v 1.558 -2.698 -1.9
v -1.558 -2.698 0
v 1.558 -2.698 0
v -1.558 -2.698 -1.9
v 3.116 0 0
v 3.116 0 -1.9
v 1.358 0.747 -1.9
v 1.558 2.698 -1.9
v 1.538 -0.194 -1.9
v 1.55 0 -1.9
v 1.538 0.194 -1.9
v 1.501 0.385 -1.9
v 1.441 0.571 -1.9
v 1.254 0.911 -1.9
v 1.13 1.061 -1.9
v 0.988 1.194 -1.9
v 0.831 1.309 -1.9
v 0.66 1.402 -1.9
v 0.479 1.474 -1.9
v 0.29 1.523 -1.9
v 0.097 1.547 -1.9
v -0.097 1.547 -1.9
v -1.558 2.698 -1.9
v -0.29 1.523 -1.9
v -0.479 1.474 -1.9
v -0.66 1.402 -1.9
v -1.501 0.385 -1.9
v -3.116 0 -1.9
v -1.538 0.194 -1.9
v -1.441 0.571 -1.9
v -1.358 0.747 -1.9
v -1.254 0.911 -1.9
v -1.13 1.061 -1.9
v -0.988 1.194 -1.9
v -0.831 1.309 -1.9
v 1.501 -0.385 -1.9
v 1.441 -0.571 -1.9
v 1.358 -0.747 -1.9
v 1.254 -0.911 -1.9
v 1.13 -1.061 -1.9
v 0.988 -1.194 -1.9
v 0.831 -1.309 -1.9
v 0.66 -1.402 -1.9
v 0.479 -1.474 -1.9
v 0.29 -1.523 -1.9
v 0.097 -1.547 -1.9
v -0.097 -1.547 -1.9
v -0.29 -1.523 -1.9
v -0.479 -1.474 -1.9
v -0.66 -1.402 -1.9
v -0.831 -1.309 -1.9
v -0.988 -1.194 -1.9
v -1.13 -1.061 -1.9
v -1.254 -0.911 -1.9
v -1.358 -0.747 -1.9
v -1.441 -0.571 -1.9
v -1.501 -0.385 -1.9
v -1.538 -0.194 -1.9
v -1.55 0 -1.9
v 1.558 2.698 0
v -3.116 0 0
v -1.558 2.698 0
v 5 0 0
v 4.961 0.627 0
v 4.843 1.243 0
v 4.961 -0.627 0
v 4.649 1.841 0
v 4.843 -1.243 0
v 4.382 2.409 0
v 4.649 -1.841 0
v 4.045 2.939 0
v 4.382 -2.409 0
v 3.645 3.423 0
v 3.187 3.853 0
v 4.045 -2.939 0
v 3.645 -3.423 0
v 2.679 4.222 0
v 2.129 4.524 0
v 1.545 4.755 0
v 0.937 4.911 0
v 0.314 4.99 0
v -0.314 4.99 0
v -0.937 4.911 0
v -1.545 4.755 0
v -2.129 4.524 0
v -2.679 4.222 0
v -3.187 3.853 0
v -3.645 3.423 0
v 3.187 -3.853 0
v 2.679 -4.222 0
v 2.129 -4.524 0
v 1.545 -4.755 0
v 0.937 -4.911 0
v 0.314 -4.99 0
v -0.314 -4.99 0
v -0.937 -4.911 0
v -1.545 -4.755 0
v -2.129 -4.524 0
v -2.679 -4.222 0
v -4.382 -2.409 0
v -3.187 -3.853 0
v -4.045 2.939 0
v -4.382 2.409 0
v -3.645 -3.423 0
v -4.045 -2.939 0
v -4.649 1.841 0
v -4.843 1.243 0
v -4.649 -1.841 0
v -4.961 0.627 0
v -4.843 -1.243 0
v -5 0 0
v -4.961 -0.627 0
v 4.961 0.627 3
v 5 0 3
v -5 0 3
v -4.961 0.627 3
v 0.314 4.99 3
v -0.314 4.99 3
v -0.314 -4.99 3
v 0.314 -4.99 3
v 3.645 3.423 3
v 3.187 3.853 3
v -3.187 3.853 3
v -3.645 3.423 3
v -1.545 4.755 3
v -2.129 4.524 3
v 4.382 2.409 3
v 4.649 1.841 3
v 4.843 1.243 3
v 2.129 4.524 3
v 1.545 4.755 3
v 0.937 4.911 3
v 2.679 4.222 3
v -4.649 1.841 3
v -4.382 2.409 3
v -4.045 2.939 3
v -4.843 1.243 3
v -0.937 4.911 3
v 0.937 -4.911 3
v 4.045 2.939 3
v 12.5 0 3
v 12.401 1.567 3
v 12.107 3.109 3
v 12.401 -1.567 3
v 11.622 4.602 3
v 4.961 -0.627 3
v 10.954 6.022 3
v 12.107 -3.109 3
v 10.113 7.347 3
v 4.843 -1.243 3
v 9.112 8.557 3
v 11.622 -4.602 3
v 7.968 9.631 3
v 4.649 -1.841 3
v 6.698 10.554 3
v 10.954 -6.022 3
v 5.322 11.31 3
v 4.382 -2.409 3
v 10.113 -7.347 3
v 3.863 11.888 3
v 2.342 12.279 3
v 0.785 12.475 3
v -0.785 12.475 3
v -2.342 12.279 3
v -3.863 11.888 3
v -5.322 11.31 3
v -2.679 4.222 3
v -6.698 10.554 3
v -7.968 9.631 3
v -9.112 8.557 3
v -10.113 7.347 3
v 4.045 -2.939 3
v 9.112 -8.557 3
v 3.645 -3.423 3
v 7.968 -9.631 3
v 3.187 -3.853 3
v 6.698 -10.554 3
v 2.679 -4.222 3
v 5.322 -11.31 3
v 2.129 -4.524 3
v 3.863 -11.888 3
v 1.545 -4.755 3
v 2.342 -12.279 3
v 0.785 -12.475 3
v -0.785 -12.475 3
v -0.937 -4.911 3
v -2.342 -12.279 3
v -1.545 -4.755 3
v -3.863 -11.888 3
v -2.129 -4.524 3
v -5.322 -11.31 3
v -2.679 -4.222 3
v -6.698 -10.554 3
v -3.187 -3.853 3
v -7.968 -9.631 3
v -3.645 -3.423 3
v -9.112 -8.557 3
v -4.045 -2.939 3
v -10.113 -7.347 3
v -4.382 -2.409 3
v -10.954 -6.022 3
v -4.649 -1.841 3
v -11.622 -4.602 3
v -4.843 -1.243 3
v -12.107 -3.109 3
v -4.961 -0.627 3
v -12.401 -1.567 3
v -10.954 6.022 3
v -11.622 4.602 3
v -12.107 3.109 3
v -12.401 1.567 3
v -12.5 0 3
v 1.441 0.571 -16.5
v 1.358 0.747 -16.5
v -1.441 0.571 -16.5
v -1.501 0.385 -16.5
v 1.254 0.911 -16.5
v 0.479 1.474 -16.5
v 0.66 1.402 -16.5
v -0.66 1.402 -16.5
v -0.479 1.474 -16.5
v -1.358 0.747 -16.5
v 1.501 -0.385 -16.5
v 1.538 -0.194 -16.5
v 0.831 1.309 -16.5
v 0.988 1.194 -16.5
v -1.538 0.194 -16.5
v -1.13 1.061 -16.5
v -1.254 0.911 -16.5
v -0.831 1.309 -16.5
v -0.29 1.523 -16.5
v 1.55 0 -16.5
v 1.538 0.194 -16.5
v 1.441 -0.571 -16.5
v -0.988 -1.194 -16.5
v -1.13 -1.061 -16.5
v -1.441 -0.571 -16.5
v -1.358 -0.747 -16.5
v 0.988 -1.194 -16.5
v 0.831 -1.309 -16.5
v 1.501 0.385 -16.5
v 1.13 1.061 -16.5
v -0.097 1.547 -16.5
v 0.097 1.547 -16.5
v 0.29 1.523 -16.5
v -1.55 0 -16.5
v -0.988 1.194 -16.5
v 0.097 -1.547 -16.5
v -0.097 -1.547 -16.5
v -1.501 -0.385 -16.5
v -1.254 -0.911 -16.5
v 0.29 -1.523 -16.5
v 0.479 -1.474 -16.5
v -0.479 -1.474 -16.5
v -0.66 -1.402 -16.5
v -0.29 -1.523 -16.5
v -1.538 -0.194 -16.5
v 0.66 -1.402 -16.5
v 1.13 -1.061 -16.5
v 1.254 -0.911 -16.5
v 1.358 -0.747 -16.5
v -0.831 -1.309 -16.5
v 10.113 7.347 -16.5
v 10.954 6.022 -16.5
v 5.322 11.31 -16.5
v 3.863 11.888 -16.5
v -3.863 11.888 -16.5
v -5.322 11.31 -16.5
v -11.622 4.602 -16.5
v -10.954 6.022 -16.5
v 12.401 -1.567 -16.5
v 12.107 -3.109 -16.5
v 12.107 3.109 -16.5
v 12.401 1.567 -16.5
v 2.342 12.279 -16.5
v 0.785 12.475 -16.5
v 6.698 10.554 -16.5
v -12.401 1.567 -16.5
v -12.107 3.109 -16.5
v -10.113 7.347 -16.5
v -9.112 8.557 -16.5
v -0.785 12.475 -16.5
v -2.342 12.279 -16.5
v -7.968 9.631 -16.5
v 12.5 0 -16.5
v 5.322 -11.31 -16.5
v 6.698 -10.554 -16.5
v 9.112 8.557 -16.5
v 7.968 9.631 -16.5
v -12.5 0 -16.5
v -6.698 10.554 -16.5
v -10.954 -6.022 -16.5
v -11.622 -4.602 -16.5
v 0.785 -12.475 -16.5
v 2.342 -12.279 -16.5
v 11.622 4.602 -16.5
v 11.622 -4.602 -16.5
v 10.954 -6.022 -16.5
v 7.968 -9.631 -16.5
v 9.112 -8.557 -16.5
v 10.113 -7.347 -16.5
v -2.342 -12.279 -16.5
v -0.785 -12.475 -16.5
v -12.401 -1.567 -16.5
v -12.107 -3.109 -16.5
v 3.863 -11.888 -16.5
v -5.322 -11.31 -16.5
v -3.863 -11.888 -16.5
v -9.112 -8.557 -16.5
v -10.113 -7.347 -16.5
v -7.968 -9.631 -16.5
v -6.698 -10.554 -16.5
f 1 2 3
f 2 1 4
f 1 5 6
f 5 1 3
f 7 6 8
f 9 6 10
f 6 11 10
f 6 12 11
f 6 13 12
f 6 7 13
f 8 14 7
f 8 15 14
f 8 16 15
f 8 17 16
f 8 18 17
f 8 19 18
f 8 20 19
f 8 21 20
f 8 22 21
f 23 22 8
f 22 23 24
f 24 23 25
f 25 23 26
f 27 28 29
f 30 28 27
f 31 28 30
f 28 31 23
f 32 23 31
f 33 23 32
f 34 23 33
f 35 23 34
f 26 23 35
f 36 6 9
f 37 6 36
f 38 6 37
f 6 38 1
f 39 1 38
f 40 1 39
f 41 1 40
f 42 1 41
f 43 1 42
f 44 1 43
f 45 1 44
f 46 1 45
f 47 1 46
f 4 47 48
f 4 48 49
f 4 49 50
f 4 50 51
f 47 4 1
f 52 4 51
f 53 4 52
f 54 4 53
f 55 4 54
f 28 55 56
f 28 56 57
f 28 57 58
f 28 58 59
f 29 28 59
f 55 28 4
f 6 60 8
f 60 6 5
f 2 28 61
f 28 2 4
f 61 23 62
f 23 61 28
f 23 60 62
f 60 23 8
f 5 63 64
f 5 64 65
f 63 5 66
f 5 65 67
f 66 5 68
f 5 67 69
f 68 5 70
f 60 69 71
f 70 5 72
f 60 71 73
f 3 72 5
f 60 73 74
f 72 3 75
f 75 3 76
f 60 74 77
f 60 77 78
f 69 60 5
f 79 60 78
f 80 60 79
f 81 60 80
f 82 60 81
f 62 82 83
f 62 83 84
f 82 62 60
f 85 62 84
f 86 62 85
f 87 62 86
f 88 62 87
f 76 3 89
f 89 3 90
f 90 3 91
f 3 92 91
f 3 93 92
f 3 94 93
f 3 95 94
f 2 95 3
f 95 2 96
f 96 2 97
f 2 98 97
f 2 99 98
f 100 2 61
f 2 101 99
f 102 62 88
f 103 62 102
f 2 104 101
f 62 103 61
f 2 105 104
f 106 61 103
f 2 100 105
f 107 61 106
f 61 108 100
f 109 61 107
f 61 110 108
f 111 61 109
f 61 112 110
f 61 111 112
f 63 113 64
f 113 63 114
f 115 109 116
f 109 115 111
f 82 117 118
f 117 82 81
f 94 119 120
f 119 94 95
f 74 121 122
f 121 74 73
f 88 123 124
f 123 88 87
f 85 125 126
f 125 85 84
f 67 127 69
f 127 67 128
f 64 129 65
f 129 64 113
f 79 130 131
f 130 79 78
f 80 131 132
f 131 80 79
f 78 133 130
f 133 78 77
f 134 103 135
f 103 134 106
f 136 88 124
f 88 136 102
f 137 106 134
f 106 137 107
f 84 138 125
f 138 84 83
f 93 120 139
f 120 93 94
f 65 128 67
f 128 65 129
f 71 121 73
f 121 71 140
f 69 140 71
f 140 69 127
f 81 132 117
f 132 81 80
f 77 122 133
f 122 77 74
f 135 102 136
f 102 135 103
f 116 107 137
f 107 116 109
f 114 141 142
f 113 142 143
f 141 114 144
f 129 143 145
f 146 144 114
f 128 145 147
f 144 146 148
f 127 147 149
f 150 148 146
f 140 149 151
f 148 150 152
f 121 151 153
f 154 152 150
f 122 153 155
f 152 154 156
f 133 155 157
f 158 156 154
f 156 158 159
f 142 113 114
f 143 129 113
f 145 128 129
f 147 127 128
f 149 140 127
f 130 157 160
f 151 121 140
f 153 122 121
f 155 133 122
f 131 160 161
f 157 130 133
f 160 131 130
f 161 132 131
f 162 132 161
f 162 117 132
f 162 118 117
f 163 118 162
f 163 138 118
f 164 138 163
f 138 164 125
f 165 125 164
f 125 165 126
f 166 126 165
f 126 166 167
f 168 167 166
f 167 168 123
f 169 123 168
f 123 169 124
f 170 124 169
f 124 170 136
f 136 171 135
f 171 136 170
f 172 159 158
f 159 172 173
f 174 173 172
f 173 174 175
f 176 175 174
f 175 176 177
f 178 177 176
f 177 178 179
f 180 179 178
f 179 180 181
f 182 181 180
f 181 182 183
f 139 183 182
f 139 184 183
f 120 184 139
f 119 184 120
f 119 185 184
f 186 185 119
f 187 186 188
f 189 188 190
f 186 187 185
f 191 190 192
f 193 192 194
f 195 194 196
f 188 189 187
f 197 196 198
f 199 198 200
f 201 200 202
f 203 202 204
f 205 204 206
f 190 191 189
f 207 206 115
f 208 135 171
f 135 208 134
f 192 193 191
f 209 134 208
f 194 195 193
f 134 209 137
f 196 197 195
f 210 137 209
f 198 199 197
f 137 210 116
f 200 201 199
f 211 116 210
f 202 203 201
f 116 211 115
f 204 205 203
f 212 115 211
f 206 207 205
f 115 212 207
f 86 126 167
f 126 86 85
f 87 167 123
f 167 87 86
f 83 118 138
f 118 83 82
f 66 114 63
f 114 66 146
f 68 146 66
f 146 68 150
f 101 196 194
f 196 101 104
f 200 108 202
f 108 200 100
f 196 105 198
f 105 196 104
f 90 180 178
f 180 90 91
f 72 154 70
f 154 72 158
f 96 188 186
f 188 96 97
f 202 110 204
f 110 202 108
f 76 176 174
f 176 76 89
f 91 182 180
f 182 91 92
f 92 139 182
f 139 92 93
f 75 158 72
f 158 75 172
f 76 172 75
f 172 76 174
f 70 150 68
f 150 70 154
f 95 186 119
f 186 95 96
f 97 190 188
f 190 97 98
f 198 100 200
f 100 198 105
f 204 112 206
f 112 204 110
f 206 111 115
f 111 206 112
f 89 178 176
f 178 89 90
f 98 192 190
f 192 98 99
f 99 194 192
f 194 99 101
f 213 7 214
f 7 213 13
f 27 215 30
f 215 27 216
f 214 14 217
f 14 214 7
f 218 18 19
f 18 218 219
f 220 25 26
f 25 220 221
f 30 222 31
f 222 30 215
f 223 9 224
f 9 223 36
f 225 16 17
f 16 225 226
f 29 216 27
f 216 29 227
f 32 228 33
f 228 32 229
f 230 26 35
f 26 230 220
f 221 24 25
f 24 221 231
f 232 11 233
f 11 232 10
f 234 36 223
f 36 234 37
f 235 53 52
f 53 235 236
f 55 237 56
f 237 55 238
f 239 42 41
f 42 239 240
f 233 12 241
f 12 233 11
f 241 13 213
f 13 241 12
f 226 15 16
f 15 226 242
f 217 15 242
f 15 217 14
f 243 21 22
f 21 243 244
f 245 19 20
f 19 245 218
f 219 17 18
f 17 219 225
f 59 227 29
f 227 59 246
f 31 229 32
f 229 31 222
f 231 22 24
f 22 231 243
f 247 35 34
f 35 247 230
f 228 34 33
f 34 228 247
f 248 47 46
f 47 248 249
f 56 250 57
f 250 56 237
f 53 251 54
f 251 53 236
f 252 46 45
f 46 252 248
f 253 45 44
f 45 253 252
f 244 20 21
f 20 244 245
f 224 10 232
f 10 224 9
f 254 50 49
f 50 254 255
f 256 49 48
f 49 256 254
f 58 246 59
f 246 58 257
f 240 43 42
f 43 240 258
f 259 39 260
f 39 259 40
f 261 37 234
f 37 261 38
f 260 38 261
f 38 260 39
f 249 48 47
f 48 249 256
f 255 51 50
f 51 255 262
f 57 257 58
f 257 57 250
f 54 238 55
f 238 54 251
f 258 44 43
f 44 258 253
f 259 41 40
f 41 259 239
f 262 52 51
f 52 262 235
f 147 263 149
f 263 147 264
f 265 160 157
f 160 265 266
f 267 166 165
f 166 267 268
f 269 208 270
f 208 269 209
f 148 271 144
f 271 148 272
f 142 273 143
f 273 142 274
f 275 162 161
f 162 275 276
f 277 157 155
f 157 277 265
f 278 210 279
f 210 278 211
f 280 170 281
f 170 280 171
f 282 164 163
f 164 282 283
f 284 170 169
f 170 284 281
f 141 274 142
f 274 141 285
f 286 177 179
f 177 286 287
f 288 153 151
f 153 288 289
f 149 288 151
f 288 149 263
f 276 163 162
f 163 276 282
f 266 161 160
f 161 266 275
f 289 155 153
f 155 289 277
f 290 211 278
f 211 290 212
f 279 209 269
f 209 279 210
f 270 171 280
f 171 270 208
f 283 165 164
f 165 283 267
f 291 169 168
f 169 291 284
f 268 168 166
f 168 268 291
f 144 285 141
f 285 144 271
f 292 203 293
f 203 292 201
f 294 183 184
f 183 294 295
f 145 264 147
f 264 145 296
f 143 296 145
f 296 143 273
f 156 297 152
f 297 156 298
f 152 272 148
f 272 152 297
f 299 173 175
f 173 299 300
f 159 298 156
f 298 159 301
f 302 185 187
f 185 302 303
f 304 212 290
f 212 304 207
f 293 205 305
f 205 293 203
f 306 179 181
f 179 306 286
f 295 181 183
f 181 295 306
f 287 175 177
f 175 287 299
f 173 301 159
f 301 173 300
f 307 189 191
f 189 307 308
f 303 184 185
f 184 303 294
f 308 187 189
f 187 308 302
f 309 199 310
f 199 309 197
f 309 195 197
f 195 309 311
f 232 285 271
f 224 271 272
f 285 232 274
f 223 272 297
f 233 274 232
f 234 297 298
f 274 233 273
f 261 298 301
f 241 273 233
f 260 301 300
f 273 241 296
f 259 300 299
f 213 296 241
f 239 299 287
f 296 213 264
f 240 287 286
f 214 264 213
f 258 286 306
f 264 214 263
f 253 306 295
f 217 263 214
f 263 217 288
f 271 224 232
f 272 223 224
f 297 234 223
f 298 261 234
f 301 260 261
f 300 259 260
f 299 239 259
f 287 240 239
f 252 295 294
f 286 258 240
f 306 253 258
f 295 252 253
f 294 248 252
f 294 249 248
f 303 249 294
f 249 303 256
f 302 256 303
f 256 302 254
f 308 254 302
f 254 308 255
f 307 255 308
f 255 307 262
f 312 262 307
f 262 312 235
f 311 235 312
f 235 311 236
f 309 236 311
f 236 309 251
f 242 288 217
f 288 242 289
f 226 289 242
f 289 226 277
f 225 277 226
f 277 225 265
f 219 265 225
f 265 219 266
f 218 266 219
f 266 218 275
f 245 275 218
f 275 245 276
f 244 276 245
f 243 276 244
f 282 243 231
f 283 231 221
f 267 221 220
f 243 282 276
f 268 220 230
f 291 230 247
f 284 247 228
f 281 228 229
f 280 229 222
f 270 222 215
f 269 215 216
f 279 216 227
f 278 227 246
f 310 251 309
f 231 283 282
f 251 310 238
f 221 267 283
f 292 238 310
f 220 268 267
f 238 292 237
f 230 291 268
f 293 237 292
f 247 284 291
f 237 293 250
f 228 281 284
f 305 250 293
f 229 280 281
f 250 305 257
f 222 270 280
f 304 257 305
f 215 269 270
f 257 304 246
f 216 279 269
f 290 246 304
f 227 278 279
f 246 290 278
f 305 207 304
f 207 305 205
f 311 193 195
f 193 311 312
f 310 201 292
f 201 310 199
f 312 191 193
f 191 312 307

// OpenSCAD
$fn = 50;

difference() {
	union() {
		translate(v = [0, 0, -16.5]) {
			cylinder(h = 19.5, r = 12.5);
		}
	}
	union() {
		translate(v = [0, 0, 0]) {
			rotate(a = [0, 0, 0]) {
				difference() {
					union() {
						translate(v = [0, 0, -1.9]) {
							linear_extrude(height = 1.9) {
								polygon(points = [[3.1158, 0.0], [1.5579000000000005, 2.698361953111554], [-1.5578999999999994, 2.6983619531115544], [-3.1158, 3.815754496783323e-16], [-1.5579000000000014, -2.6983619531115535], [1.557899999999998, -2.6983619531115552]]);
							}
						}
					}
					union();
				}
			}
		}
		#cylinder(h = 3, r = 5.0);
		#translate(v = [0, 0, -100.0]) {
			cylinder(h = 200, r = 1.55);
		}
	}
}
